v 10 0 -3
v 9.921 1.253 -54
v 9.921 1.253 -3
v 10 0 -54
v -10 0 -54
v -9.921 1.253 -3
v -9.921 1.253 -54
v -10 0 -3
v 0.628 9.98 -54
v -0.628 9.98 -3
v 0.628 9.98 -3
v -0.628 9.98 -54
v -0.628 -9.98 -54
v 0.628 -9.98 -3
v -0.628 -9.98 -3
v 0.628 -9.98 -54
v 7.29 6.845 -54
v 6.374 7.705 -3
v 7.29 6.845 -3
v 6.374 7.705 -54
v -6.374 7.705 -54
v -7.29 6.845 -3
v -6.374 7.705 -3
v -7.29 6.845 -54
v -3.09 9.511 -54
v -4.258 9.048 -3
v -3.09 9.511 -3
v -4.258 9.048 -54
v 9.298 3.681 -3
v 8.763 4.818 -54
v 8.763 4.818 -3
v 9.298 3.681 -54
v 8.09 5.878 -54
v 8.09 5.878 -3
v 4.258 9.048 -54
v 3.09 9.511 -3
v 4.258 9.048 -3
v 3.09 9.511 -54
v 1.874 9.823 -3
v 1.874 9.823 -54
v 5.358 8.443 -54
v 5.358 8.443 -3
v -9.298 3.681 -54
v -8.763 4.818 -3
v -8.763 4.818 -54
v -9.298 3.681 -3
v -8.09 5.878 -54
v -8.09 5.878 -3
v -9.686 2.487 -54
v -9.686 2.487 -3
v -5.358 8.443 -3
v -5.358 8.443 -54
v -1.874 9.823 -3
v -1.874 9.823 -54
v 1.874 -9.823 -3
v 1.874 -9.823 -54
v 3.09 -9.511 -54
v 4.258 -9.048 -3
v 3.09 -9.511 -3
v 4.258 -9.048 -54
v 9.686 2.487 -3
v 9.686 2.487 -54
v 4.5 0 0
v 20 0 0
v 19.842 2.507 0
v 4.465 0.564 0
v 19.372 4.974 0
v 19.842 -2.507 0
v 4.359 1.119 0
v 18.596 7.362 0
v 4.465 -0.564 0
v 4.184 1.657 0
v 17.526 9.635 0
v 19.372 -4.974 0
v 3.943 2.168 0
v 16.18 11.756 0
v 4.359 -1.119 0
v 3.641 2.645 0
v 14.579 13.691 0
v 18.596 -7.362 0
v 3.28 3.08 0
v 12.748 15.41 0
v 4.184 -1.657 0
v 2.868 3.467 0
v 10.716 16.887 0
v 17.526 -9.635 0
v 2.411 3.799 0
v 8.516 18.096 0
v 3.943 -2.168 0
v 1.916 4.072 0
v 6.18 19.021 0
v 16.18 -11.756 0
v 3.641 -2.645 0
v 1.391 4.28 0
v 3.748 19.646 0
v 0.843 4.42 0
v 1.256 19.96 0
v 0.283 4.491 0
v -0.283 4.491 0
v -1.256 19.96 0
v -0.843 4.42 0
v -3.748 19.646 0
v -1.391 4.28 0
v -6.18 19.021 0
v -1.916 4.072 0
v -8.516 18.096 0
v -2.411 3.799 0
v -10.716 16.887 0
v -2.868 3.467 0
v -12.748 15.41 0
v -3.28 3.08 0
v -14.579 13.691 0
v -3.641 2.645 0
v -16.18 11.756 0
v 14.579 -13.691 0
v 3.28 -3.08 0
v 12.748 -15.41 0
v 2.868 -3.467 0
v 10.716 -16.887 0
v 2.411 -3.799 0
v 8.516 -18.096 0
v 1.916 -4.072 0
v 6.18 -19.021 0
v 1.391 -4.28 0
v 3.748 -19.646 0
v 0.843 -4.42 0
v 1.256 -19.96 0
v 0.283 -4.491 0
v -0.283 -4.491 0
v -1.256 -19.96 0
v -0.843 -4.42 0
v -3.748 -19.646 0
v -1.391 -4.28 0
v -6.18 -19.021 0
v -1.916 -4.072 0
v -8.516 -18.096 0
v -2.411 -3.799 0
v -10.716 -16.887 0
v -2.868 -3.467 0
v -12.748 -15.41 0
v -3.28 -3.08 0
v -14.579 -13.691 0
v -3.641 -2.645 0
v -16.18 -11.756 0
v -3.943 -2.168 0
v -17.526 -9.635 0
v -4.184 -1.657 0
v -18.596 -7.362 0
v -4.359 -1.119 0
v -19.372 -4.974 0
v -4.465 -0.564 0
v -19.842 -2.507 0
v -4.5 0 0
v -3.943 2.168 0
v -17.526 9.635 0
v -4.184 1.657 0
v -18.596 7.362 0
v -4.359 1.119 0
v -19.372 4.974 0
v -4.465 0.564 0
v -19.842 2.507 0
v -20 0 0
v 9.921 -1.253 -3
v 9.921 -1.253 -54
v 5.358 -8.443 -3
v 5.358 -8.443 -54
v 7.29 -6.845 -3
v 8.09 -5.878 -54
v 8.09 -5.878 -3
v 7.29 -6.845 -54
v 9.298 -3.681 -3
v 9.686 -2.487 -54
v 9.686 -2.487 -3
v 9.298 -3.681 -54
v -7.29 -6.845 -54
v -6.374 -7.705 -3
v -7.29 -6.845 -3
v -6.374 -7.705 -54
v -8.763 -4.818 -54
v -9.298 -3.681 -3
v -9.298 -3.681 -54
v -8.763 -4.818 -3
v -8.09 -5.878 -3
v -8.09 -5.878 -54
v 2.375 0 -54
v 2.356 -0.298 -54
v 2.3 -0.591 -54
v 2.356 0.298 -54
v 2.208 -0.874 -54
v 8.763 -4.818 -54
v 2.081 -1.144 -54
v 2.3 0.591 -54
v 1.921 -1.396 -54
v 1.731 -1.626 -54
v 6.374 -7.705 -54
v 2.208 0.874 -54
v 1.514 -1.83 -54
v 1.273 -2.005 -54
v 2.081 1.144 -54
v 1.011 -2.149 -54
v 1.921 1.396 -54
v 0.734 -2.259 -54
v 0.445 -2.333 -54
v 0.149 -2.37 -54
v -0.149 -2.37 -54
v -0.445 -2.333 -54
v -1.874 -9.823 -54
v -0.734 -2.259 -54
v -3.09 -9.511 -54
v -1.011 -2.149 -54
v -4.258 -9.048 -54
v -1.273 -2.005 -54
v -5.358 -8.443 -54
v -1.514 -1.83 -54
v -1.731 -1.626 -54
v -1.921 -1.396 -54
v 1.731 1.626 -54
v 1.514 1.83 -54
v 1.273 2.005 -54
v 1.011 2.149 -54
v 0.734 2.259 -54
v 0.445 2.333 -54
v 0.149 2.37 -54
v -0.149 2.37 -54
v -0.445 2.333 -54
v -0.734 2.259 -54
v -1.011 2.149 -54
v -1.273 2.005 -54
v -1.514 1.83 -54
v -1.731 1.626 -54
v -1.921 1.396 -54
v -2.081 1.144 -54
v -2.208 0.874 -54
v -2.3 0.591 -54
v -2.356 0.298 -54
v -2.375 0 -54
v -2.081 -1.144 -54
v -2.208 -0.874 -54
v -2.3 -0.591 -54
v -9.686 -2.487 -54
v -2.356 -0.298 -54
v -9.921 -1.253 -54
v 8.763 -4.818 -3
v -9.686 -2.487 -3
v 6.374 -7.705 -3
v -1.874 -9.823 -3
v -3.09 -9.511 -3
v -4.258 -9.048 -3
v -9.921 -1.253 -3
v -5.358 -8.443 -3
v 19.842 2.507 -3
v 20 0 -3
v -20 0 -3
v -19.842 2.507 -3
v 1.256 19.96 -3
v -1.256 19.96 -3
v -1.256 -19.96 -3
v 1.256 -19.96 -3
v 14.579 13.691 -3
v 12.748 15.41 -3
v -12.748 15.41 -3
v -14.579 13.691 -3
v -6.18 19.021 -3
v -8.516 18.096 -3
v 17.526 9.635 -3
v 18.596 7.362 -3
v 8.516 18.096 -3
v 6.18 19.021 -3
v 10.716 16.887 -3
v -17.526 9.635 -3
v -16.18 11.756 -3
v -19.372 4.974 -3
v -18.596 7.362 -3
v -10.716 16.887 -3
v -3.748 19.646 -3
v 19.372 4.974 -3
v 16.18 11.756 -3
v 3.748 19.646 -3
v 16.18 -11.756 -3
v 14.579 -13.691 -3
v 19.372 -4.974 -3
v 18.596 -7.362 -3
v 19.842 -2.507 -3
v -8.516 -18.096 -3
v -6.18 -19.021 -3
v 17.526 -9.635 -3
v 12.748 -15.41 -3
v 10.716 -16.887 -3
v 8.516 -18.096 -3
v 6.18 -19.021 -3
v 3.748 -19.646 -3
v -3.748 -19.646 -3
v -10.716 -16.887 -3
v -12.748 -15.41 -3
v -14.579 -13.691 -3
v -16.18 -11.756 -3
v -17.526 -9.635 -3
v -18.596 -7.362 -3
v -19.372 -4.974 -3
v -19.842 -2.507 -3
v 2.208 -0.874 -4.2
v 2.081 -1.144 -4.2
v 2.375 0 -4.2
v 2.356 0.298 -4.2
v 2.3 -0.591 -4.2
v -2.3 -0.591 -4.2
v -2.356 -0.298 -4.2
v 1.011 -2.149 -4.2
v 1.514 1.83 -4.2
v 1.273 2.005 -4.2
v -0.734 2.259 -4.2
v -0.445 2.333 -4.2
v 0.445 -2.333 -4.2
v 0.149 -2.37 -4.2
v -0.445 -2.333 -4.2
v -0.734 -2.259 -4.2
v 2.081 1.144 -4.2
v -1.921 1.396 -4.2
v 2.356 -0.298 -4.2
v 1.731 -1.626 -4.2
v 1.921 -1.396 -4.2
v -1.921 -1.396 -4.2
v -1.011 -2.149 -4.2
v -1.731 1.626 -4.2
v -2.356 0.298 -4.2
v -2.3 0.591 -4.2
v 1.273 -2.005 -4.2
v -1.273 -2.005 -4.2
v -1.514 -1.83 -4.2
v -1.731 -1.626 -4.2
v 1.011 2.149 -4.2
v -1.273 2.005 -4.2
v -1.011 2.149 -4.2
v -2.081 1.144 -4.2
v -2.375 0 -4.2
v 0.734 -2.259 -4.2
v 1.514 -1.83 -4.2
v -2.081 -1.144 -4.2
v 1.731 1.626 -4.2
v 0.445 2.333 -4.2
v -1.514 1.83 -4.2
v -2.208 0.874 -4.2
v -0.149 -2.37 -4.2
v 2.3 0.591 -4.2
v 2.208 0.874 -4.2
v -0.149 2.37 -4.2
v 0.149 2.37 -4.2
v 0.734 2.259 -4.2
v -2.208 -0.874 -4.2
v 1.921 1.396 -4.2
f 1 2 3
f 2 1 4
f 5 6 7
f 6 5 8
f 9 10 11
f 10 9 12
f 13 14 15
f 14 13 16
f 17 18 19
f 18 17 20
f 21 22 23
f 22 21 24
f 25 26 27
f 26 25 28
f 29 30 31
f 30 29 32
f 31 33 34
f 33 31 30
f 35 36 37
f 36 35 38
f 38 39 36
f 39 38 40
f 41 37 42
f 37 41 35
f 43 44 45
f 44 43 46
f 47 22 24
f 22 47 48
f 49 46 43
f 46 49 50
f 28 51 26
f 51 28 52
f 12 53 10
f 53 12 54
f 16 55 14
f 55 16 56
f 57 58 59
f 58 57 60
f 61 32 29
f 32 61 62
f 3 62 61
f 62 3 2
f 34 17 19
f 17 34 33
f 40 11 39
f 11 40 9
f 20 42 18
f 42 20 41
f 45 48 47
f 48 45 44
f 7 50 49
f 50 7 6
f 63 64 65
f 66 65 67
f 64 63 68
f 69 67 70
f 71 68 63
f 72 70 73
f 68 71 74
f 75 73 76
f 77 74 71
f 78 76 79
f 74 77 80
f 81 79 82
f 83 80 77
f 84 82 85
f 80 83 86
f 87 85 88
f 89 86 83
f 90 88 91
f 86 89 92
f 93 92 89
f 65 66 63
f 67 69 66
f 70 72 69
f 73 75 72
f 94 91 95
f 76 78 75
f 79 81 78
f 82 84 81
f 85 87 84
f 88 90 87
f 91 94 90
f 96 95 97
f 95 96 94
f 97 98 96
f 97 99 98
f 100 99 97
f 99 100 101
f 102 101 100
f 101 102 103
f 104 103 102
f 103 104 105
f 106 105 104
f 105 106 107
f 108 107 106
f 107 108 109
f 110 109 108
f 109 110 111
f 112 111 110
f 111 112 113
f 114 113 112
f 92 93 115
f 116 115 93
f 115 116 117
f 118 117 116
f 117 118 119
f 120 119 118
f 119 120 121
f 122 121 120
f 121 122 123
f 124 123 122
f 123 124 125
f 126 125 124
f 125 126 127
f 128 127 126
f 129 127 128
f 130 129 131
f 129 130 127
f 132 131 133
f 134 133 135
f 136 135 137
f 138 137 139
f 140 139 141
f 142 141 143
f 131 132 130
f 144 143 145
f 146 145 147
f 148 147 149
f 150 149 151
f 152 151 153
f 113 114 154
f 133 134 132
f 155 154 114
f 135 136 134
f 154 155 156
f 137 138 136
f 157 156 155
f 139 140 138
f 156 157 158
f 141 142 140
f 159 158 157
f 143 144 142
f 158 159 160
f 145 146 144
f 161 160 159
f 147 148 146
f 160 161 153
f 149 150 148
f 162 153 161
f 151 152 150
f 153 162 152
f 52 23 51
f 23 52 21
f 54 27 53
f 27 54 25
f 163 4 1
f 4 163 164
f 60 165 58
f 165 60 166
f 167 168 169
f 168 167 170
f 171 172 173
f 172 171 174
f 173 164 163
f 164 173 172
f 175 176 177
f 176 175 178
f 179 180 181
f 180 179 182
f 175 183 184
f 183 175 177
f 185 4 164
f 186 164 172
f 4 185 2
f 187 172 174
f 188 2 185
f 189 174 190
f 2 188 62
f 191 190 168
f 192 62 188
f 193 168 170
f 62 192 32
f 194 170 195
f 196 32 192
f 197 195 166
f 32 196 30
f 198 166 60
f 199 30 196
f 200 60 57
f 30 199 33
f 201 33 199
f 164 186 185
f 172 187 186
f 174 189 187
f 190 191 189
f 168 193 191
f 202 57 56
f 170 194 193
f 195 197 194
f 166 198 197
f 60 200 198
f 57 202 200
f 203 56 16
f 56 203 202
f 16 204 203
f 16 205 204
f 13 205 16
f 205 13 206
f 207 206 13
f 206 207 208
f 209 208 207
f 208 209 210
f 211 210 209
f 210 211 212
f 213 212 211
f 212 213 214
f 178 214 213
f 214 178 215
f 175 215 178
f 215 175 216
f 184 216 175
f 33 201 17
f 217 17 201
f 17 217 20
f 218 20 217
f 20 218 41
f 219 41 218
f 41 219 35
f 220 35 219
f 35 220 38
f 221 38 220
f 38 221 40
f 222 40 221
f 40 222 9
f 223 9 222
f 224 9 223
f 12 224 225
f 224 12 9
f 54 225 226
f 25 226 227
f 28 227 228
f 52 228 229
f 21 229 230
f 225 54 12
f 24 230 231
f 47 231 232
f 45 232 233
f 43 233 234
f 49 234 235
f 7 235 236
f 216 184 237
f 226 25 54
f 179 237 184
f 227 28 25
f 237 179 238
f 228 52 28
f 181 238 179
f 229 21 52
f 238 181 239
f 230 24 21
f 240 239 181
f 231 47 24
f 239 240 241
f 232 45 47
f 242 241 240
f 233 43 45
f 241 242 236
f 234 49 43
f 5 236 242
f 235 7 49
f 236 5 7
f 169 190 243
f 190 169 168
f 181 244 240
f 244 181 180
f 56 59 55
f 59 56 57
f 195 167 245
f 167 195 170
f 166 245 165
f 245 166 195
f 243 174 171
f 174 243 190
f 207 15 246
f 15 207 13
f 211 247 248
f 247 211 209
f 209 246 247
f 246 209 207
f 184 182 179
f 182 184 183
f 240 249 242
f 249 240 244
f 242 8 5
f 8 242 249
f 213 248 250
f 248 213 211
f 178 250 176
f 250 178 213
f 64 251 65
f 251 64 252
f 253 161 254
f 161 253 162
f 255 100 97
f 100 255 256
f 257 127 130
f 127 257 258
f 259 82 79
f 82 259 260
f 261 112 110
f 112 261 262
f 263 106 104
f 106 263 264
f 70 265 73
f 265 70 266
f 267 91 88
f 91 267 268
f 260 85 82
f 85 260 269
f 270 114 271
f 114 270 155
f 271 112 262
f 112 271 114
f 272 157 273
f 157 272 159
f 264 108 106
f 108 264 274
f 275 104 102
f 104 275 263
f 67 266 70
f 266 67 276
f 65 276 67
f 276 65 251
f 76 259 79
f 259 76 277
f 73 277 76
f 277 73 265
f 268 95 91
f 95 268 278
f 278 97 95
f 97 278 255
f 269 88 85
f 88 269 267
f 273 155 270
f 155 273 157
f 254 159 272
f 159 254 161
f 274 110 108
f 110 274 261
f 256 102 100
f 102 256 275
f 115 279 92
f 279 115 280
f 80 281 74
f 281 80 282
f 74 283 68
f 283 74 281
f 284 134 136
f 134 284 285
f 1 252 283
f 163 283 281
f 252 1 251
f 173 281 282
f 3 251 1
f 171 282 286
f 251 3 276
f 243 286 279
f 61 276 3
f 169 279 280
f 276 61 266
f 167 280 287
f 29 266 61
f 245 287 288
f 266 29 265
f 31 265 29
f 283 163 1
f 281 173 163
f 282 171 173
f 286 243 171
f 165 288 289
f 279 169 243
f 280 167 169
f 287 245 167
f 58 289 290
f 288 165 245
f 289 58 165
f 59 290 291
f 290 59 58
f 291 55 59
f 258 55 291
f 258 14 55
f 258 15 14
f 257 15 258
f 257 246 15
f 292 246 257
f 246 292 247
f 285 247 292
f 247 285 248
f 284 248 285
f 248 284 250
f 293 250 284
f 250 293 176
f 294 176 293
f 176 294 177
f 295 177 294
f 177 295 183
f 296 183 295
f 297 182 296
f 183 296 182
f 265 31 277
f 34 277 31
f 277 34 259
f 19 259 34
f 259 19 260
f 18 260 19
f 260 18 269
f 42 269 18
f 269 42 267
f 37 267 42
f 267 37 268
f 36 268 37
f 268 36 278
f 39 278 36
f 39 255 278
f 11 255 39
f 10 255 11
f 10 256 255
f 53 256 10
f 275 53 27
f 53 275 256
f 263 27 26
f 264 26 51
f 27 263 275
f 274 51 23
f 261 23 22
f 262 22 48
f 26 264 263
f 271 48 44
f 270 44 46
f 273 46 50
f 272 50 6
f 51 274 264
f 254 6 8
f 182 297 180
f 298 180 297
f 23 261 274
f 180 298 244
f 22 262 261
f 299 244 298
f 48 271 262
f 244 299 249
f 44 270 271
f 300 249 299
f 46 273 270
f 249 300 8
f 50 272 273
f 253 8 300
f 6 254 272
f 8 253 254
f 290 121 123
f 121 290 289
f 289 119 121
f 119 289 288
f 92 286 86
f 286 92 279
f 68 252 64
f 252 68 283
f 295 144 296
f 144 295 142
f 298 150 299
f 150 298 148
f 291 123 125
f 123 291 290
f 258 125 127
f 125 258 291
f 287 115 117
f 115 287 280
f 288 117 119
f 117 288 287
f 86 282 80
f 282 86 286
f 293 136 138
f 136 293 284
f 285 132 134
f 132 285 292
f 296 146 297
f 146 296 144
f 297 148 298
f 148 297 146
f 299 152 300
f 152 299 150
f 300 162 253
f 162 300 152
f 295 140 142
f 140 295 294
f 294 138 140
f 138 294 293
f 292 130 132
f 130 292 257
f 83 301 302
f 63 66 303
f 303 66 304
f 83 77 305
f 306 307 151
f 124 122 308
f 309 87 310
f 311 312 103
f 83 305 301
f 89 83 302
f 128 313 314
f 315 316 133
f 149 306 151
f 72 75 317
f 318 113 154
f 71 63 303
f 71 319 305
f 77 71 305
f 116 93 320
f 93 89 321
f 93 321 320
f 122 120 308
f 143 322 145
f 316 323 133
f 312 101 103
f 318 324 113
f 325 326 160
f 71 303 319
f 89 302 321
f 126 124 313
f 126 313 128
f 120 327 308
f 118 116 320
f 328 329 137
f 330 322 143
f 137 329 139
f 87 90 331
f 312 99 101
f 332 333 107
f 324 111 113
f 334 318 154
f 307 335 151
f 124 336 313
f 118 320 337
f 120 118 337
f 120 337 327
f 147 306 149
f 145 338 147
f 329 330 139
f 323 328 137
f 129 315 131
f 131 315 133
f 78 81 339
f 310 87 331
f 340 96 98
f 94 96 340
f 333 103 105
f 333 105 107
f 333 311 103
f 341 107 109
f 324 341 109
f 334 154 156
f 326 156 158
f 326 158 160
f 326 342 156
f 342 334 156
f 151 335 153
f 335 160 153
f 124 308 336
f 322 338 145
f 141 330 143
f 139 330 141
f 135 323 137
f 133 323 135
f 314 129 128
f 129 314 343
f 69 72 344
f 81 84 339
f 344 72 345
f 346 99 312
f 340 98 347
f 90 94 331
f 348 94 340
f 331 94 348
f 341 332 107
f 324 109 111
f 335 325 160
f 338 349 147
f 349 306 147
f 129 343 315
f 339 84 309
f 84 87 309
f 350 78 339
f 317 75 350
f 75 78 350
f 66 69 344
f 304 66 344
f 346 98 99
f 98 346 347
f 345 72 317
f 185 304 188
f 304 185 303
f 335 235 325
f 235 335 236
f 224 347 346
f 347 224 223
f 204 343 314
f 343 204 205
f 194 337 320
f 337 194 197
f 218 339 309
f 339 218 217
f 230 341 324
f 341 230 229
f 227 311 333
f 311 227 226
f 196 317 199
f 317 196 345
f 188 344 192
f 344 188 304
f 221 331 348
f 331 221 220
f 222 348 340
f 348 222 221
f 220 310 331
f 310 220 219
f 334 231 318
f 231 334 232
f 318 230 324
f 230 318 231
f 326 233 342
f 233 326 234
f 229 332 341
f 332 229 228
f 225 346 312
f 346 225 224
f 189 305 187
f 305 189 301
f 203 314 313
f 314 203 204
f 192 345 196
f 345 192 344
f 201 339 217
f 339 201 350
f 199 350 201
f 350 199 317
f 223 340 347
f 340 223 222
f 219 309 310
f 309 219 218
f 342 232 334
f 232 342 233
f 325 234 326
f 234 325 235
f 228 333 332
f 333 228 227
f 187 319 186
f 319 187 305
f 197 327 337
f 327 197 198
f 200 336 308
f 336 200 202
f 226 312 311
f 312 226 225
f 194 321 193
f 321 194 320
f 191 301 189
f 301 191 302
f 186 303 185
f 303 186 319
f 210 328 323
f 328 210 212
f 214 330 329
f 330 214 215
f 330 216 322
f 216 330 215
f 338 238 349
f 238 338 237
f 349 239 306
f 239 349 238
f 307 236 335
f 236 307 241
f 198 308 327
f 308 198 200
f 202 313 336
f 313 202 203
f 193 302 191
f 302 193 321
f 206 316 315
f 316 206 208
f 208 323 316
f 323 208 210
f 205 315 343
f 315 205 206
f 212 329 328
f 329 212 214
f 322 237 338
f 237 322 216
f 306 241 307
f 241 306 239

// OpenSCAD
$fn = 50;


difference() {
	union() {
		translate(v = [0, 0, -54.0000000000]) {
			cylinder(h = 54, r = 10.0000000000);
		}
		translate(v = [0, 0, -3.0000000000]) {
			cylinder(h = 3, r = 20.0000000000);
		}
	}
	union() {
		translate(v = [0, 0, 0]) {
			rotate(a = [0, 0, 0]) {
				difference() {
					union() {
						#translate(v = [0, 0, -54.0000000000]) {
							cylinder(h = 54, r = 2.2500000000);
						}
						#translate(v = [0, 0, -4.2000000000]) {
							cylinder(h = 4.2000000000, r1 = 2.3750000000, r2 = 4.5000000000);
						}
						#translate(v = [0, 0, -54.0000000000]) {
							cylinder(h = 54, r = 2.3750000000);
						}
						#translate(v = [0, 0, -54.0000000000]) {
							cylinder(h = 54, r = 2.2500000000);
						}
					}
					union();
				}
			}
		}
	}
}
